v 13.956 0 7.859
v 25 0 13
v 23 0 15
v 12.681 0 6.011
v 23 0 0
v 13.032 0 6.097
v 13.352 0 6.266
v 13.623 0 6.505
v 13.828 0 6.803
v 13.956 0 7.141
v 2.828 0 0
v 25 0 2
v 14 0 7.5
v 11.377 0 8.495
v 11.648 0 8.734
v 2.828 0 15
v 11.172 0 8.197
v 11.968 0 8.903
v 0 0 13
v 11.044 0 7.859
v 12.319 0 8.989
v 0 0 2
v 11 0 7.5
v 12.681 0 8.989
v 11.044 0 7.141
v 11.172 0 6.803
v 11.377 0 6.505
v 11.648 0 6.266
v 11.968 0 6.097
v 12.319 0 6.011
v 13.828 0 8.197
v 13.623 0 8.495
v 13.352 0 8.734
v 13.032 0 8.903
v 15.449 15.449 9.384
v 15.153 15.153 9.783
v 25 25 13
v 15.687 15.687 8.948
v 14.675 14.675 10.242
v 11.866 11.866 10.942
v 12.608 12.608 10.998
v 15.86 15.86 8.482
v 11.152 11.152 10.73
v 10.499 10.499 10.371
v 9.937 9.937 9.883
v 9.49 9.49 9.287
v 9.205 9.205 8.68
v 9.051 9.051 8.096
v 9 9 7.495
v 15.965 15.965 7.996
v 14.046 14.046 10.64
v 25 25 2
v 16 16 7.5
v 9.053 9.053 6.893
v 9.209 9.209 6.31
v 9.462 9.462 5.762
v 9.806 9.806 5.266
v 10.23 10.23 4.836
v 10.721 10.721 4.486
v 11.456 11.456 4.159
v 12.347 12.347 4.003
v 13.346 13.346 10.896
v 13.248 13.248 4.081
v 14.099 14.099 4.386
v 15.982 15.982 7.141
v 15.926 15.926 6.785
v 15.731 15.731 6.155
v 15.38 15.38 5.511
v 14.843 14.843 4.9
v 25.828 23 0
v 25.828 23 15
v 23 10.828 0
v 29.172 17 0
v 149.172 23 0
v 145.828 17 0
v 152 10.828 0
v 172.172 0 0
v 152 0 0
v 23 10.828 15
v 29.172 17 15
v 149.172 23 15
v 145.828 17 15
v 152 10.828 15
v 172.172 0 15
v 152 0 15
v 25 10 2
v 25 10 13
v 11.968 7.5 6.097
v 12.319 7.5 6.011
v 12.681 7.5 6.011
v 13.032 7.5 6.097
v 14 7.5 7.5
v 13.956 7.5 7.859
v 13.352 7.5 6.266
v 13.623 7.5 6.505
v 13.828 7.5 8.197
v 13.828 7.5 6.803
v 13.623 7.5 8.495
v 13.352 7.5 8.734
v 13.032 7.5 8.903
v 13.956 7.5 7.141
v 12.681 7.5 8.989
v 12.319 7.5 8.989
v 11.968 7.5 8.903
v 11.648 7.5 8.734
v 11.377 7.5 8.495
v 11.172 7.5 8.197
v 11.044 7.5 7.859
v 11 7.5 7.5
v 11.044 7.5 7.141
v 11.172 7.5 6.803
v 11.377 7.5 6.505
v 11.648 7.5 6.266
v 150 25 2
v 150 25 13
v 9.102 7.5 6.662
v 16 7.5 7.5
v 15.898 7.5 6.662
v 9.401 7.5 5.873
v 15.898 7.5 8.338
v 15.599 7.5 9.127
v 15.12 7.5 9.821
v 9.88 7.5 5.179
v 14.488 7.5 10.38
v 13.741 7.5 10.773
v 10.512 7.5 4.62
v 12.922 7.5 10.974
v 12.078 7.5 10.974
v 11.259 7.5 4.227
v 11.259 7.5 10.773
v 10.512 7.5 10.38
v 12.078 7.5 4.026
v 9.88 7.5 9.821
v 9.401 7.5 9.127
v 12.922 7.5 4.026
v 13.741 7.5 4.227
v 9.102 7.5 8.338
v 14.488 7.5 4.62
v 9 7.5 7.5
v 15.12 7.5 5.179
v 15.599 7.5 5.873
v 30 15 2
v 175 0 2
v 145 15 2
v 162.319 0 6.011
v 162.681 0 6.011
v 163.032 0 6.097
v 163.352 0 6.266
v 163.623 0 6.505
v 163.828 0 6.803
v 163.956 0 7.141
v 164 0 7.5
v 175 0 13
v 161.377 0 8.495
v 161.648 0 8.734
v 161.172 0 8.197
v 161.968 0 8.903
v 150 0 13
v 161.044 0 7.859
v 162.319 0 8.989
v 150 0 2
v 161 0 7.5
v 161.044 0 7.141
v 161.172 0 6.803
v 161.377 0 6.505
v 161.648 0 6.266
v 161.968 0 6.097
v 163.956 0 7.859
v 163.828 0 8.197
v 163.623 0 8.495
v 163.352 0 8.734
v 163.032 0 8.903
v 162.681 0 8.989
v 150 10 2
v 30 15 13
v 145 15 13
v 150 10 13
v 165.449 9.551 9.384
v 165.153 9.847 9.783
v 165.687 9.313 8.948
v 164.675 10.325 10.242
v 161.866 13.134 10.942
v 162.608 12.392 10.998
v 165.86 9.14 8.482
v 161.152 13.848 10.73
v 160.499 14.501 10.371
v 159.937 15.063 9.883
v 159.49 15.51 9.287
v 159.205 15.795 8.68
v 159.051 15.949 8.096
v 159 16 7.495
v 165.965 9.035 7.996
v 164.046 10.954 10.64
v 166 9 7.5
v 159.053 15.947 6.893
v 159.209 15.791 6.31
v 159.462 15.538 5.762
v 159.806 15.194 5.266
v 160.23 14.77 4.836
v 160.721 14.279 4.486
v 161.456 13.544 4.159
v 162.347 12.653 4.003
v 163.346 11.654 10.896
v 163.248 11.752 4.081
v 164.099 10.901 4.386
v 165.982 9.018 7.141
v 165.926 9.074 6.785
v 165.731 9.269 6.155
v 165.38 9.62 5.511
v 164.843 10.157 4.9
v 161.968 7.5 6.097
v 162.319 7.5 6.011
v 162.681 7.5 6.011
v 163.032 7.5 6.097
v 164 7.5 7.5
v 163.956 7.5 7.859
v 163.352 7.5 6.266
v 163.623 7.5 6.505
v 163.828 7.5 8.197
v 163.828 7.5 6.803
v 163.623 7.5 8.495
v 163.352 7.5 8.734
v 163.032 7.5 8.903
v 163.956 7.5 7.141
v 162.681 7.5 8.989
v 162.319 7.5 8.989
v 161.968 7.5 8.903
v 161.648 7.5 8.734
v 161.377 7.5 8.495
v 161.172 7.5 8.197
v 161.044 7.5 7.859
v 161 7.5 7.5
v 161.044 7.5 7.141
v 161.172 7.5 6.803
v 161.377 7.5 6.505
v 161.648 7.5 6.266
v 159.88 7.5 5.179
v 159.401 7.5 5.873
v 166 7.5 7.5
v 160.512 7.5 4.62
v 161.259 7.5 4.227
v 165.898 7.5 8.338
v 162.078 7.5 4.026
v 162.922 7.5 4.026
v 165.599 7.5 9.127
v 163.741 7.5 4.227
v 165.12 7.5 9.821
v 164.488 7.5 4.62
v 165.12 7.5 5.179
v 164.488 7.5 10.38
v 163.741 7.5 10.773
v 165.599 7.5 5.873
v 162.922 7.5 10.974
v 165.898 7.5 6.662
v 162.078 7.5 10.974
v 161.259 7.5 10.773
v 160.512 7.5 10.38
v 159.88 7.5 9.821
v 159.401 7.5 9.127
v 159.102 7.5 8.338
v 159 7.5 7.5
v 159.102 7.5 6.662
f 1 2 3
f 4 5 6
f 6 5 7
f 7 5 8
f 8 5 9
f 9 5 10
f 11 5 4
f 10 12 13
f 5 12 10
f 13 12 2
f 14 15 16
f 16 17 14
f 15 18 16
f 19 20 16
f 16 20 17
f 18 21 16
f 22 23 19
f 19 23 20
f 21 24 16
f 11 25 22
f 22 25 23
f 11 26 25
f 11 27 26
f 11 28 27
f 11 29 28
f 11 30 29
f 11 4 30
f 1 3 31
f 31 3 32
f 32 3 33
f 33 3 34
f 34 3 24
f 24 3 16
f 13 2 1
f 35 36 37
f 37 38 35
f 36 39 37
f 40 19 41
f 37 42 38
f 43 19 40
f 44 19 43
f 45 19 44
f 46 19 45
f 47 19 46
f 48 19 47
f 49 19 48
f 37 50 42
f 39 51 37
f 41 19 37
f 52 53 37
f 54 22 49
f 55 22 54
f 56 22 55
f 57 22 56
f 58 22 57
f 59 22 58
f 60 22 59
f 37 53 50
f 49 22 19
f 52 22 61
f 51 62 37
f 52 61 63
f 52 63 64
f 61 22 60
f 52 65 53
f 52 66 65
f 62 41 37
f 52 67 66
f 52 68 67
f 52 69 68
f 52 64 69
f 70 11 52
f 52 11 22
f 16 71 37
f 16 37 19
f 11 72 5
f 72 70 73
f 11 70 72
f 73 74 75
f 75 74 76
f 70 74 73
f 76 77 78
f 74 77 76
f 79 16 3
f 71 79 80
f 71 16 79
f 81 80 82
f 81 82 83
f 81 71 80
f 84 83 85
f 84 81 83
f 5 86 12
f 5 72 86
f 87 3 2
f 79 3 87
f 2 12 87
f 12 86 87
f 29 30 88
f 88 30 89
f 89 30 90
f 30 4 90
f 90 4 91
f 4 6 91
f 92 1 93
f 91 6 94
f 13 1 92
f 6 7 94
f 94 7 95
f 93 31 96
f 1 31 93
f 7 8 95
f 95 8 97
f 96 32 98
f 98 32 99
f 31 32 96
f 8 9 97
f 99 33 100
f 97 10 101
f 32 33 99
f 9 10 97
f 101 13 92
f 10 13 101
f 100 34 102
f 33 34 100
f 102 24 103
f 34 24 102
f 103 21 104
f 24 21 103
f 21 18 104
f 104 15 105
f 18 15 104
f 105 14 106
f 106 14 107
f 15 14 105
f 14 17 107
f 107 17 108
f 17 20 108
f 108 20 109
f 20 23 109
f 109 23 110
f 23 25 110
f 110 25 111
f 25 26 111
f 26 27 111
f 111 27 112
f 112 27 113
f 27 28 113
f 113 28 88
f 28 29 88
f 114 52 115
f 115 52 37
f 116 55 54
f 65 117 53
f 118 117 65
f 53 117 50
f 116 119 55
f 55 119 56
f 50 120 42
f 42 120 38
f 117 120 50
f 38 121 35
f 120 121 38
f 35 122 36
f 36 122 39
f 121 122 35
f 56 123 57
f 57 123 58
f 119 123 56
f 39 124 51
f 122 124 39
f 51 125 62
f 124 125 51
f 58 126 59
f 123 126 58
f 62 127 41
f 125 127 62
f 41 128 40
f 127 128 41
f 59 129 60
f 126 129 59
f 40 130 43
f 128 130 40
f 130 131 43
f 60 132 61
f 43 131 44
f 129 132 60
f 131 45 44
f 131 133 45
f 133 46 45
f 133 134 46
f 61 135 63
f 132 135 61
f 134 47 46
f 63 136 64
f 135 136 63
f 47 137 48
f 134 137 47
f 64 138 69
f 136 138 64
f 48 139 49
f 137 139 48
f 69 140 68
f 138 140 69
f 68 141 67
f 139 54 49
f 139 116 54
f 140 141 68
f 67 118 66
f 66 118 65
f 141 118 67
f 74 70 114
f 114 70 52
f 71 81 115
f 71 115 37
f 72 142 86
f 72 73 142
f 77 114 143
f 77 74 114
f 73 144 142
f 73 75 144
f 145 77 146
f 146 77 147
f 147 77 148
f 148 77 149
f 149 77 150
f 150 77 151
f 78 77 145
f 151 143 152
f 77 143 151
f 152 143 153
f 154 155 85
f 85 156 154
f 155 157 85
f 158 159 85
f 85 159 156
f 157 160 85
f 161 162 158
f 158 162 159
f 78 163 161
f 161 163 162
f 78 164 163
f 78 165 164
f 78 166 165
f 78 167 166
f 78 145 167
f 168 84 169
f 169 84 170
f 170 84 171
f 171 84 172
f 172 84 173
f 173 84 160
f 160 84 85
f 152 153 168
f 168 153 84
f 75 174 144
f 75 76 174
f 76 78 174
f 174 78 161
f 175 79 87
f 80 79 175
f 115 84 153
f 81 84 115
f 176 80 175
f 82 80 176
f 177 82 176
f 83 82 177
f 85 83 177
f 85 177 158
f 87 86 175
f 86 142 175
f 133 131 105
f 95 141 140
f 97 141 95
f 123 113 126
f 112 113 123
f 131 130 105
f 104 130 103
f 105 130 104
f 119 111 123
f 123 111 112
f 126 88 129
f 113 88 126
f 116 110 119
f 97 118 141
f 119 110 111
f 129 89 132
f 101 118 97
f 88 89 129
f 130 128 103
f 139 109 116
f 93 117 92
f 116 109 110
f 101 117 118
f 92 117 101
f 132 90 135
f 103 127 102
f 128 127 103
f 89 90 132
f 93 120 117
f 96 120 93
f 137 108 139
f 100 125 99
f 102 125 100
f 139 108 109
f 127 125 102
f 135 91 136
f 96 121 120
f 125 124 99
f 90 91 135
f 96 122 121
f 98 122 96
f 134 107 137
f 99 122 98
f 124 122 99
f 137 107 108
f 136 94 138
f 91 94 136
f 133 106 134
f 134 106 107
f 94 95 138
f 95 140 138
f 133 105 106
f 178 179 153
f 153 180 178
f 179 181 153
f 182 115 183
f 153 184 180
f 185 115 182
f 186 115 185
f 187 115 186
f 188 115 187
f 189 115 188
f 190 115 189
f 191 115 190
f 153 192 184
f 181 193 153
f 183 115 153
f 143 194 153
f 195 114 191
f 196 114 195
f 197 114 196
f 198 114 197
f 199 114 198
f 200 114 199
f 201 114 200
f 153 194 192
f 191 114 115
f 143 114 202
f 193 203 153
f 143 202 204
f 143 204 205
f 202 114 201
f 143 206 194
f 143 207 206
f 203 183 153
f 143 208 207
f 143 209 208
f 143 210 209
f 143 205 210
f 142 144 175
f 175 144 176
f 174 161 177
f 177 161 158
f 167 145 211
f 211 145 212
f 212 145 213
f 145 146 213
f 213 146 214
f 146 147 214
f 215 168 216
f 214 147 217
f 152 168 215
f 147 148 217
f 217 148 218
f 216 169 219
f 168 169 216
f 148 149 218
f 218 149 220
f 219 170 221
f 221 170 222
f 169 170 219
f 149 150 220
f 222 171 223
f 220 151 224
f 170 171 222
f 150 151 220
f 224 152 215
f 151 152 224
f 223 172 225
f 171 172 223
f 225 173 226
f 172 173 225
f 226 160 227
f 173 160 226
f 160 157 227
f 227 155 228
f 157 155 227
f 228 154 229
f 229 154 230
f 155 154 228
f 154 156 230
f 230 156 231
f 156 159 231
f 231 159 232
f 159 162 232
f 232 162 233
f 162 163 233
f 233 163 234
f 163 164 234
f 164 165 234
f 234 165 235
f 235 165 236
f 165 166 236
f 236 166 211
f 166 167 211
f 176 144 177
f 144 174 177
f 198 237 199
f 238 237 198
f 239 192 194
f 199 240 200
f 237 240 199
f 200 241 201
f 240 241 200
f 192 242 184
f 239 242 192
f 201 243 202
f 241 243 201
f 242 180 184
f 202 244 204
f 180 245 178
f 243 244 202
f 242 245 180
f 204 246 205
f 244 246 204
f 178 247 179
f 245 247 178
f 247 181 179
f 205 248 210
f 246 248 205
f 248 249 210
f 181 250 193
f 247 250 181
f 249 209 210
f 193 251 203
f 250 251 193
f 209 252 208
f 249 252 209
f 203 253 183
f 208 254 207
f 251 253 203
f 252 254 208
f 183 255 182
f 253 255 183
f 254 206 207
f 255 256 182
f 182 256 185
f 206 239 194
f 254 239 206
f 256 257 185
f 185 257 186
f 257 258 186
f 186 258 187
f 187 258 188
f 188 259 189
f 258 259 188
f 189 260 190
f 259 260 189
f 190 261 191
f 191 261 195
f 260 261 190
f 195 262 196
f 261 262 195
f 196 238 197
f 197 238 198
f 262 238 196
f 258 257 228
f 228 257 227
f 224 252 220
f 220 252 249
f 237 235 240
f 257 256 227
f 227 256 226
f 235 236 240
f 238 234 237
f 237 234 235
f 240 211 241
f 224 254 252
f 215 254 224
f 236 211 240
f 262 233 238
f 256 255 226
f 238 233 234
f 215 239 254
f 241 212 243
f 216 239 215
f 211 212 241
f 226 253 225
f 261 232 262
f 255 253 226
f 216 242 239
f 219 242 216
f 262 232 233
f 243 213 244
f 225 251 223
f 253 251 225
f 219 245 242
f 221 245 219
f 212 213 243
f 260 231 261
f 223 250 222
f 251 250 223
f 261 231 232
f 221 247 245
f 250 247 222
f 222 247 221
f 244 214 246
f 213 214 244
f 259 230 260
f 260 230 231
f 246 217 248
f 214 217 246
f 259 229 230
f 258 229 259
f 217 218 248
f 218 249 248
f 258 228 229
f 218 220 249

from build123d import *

# Parameters (mm, degrees)
CYLINDER001_R     = 3.5
CYLINDER001_DEPTH = 10
CYLINDER002_R     = 1.5
CYLINDER002_DEPTH = 7.5
CYLINDER003_R     = 3.5
CYLINDER003_DEPTH = 10
CYLINDER_R        = 1.5
CYLINDER_DEPTH    = 7.5
EXTRUDE_DEPTH     = 15
CHAMFER_SIZE      = 2


with BuildPart() as screwheadhole000:
    # Cylinder001 → Cylinder001 (new body)
    with BuildSketch(Plane(origin=(12.5, 17.5, 7.5), x_dir=(1, 0, 0), z_dir=(0, -1, 0))):
        Circle(CYLINDER001_R)
    extrude(amount=CYLINDER001_DEPTH)


with BuildPart() as screwhole001:
    # Cylinder002 → Cylinder002 (new body)
    with BuildSketch(Plane(origin=(162.5, 7.5, 7.5), x_dir=(1, 0, 0), z_dir=(0, -1, 0))):
        Circle(CYLINDER002_R)
    extrude(amount=CYLINDER002_DEPTH)


with BuildPart() as screwheadhole001:
    # Cylinder003 → Cylinder003 (new body)
    with BuildSketch(Plane(origin=(162.5, 17.5, 7.5), x_dir=(1, 0, 0), z_dir=(0, -1, 0))):
        Circle(CYLINDER003_R)
    extrude(amount=CYLINDER003_DEPTH)


with BuildPart() as fusion:
    # Cylinder → Cylinder (new body)
    with BuildSketch(Plane(origin=(12.5, 7.5, 7.5), x_dir=(1, 0, 0), z_dir=(0, -1, 0))):
        Circle(CYLINDER_R)
    extrude(amount=CYLINDER_DEPTH)

    # Fusion: union screwheadhole000, screwhole001, screwheadhole001
    add(screwheadhole000.part)
    add(screwhole001.part)
    add(screwheadhole001.part)


with BuildPart() as cut:
    # Sketch → Extrude (new body)
    with BuildSketch(Plane.XY):
        Polygon((0, 0), (25, 0), (25, 10), (30, 15), (145, 15), (150, 10), (150, 0), (175, 0), (150, 25), (25, 25), align=None)
    extrude(amount=EXTRUDE_DEPTH)

    # Chamfer
    chamfer_edges = [cut.edges().sort_by_distance(p)[0] for p in [
        (25, 5, 0),
        (25, 5, 15),
        (27.5, 12.5, 0),
        (27.5, 12.5, 15),
        (87.5, 15, 0),
        (87.5, 15, 15),
        (147.5, 12.5, 0),
        (147.5, 12.5, 15),
        (150, 5, 0),
        (150, 5, 15),
        (162.5, 12.5, 0),
        (162.5, 12.5, 15),
        (87.5, 25, 0),
        (87.5, 25, 15),
        (12.5, 12.5, 0),
        (12.5, 12.5, 15),
    ]]
    chamfer(chamfer_edges, length=CHAMFER_SIZE)

    # Cut: cut Fusion
    add(fusion.part, mode=Mode.SUBTRACT)


solid = cut.part
